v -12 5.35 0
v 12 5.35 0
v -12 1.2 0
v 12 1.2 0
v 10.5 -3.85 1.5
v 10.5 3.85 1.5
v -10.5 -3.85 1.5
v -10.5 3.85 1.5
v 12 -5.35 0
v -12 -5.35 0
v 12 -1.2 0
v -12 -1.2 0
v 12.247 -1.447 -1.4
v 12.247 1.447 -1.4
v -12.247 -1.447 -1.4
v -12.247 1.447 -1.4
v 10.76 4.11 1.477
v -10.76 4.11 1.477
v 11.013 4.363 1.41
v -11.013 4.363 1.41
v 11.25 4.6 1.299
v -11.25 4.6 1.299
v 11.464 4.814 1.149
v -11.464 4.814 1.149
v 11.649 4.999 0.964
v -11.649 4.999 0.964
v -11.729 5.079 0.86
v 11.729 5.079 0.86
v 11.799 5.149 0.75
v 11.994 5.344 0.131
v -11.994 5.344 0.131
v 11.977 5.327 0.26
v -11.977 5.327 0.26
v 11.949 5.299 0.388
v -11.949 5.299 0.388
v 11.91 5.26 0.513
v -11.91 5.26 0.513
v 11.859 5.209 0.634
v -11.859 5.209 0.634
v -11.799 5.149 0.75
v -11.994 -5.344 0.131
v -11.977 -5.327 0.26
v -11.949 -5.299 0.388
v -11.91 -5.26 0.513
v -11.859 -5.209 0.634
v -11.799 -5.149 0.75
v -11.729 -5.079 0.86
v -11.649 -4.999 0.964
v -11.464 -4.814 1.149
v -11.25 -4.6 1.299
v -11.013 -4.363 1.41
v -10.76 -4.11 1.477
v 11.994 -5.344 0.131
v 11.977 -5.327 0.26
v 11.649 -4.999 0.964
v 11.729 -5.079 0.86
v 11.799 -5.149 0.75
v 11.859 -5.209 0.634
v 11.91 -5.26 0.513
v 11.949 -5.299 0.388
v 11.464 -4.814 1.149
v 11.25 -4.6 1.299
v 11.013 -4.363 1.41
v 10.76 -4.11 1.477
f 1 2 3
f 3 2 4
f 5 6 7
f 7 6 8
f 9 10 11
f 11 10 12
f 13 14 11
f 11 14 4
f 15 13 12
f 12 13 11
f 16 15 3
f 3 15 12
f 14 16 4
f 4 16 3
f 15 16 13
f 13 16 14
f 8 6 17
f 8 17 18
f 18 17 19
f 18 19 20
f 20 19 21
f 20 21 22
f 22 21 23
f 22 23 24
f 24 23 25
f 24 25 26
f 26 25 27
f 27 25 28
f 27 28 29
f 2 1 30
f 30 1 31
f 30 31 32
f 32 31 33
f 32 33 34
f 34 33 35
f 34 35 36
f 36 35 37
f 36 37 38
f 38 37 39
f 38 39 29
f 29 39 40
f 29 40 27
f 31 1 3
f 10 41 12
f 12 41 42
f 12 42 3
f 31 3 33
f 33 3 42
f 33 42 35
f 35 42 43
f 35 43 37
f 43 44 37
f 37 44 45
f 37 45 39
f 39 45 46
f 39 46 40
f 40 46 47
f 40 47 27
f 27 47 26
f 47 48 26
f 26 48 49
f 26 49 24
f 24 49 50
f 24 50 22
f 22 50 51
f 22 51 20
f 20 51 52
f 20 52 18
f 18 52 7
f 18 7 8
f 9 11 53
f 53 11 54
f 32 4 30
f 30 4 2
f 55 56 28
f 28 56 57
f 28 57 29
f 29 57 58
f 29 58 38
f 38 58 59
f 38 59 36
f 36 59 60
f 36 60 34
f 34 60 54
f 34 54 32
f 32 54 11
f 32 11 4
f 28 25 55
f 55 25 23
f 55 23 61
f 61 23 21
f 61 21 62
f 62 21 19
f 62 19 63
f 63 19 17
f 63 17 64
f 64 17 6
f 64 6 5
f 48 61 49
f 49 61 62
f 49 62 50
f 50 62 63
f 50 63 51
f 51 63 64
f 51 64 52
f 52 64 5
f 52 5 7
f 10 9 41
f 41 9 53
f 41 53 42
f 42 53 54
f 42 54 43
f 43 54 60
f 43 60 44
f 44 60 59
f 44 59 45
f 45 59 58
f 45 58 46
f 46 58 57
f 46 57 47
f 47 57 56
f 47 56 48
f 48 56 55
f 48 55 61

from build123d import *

# Parameters (mm, degrees)
SKETCH1_W           = 24
SKETCH1_H           = 10.7
BOSS_EXTRUDE1_DEPTH = 1.5
SKETCH2_W           = 24
SKETCH2_H           = 2.4
BOSS_EXTRUDE2_DEPTH = 1.4
BOSS_EXTRUDE2_DRAFT = -10
FILLET1_R           = 1.5


with BuildPart() as part:
    # Sketch1 → Boss-Extrude1 (new body)
    with BuildSketch(Plane.XY):
        Rectangle(SKETCH1_W, SKETCH1_H)
    extrude(amount=BOSS_EXTRUDE1_DEPTH)


with BuildPart() as boss_extrude2_tool:
    # Sketch2 → Boss-Extrude2 (with draft: the straight prism first)
    with BuildSketch(Plane(origin=(0, 0, 0), x_dir=(-1, 0, 0), z_dir=(0, 0, -1))):
        Rectangle(SKETCH2_W, SKETCH2_H)
    extrude(amount=BOSS_EXTRUDE2_DEPTH)
    # Boss-Extrude2: the draft: its side faces are tilted about the plane it starts from
    boss_extrude2_sides = [boss_extrude2_tool.faces().sort_by_distance(p)[0] for p in [
        (12, 0, -0.7),
        (0, -1.2, -0.7),
        (-12, 0, -0.7),
        (0, 1.2, -0.7),
    ]]
    draft(boss_extrude2_sides, Plane(origin=(0, 0, 0), x_dir=(-1, 0, 0), z_dir=(0, 0, -1)), BOSS_EXTRUDE2_DRAFT)


with BuildPart() as part_1:
    add(part.part)

    # Boss-Extrude2: add boss_extrude2_tool
    add(boss_extrude2_tool.part)

    # Fillet1
    fillet1_edges = [part_1.edges().sort_by_distance(p)[0] for p in [
        (0, -5.35, 1.5),
        (-12, 0, 1.5),
        (0, 5.35, 1.5),
        (12, 0, 1.5),
    ]]
    fillet(fillet1_edges, radius=FILLET1_R - 0.0001)  # a hair under: the kernel refuses the full size


solid = part_1.part
